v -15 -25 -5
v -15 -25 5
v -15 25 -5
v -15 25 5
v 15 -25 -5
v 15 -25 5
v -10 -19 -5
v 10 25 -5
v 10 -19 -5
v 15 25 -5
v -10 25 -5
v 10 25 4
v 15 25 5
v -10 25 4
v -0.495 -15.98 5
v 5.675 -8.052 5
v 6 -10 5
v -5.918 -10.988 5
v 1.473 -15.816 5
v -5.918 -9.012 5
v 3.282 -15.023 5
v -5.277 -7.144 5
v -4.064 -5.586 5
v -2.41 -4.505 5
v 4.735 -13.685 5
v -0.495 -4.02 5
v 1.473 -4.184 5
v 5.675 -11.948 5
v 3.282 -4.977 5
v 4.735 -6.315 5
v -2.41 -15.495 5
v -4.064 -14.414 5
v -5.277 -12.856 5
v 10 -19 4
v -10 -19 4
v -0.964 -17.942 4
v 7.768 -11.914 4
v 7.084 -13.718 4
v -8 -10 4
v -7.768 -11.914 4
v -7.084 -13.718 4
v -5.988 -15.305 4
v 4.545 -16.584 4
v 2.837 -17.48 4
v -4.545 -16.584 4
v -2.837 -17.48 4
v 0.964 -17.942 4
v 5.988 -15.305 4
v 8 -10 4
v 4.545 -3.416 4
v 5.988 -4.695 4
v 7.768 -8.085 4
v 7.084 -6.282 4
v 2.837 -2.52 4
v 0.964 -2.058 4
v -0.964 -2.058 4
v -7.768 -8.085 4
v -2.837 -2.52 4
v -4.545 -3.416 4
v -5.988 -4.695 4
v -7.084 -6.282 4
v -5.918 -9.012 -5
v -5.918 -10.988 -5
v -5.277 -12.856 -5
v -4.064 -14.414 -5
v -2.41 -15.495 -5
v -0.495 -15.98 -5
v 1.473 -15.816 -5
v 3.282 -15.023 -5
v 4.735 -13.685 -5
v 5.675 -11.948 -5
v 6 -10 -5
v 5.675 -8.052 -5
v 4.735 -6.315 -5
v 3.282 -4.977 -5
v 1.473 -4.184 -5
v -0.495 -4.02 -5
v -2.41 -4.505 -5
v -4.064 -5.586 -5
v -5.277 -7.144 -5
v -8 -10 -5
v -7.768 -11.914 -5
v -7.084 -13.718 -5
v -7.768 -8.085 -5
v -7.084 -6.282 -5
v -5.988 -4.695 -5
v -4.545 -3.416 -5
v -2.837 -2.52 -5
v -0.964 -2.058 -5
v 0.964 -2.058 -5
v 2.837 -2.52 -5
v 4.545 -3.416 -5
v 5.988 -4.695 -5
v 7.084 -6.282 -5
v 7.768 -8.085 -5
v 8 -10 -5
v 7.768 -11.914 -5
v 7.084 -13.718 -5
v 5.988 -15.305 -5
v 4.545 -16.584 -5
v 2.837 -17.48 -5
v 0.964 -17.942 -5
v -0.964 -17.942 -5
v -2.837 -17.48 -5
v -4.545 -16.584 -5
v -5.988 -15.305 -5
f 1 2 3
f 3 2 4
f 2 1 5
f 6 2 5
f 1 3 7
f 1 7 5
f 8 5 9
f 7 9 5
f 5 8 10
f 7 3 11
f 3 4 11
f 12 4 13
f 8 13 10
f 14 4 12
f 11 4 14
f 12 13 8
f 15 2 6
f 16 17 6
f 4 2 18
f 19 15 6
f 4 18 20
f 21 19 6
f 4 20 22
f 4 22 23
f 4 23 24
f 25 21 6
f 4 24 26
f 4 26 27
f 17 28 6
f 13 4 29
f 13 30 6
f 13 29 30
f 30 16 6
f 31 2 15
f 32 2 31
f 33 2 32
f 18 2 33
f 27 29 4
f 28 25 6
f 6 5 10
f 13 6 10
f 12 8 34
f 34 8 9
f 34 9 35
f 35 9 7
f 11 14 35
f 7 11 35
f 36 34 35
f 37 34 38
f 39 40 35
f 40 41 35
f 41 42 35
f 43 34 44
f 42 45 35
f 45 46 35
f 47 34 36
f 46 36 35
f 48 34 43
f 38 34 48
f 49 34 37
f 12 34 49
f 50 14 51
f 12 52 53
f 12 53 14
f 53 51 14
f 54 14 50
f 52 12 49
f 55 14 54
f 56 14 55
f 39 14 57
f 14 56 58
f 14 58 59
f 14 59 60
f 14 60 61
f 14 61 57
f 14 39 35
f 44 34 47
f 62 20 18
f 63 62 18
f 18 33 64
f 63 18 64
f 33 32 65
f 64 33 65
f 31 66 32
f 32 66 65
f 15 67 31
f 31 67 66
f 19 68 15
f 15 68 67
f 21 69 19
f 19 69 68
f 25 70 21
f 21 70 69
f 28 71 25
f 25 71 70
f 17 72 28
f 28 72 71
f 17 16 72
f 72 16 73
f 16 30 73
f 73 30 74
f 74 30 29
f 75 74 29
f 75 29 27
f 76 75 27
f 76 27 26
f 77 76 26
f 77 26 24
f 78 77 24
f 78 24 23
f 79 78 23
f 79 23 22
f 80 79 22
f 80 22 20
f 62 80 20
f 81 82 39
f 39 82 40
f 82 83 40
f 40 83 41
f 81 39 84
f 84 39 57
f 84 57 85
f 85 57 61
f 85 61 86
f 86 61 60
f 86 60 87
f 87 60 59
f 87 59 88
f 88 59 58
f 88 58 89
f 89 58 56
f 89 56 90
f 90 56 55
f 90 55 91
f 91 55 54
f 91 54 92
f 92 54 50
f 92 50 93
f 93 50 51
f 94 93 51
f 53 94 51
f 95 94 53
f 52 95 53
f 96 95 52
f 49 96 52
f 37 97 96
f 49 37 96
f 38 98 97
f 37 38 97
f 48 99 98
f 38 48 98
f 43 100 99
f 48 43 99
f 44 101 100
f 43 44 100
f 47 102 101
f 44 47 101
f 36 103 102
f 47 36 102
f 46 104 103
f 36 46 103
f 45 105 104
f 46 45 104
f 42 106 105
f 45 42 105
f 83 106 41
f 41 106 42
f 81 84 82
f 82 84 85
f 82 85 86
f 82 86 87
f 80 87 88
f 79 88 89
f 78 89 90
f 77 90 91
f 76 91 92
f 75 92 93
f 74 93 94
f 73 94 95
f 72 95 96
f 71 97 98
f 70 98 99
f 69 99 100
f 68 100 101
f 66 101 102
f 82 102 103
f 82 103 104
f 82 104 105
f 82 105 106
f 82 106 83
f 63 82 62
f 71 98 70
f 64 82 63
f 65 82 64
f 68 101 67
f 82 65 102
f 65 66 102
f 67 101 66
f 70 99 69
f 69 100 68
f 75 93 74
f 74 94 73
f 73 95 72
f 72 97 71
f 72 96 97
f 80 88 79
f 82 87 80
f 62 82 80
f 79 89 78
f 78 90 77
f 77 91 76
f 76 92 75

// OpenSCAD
difference()
{
	union()
	{
		difference()
		{
			cube([30, 50, 10], center=true);
			translate([0,11,-1]) cube([20, 60, 10], center=true);
		}
		translate([0,-10,0]) cylinder(10, 8, 8, center=true);
	}
	translate([0,-10,0]) cylinder(15, 6, 6, center=true);
}
